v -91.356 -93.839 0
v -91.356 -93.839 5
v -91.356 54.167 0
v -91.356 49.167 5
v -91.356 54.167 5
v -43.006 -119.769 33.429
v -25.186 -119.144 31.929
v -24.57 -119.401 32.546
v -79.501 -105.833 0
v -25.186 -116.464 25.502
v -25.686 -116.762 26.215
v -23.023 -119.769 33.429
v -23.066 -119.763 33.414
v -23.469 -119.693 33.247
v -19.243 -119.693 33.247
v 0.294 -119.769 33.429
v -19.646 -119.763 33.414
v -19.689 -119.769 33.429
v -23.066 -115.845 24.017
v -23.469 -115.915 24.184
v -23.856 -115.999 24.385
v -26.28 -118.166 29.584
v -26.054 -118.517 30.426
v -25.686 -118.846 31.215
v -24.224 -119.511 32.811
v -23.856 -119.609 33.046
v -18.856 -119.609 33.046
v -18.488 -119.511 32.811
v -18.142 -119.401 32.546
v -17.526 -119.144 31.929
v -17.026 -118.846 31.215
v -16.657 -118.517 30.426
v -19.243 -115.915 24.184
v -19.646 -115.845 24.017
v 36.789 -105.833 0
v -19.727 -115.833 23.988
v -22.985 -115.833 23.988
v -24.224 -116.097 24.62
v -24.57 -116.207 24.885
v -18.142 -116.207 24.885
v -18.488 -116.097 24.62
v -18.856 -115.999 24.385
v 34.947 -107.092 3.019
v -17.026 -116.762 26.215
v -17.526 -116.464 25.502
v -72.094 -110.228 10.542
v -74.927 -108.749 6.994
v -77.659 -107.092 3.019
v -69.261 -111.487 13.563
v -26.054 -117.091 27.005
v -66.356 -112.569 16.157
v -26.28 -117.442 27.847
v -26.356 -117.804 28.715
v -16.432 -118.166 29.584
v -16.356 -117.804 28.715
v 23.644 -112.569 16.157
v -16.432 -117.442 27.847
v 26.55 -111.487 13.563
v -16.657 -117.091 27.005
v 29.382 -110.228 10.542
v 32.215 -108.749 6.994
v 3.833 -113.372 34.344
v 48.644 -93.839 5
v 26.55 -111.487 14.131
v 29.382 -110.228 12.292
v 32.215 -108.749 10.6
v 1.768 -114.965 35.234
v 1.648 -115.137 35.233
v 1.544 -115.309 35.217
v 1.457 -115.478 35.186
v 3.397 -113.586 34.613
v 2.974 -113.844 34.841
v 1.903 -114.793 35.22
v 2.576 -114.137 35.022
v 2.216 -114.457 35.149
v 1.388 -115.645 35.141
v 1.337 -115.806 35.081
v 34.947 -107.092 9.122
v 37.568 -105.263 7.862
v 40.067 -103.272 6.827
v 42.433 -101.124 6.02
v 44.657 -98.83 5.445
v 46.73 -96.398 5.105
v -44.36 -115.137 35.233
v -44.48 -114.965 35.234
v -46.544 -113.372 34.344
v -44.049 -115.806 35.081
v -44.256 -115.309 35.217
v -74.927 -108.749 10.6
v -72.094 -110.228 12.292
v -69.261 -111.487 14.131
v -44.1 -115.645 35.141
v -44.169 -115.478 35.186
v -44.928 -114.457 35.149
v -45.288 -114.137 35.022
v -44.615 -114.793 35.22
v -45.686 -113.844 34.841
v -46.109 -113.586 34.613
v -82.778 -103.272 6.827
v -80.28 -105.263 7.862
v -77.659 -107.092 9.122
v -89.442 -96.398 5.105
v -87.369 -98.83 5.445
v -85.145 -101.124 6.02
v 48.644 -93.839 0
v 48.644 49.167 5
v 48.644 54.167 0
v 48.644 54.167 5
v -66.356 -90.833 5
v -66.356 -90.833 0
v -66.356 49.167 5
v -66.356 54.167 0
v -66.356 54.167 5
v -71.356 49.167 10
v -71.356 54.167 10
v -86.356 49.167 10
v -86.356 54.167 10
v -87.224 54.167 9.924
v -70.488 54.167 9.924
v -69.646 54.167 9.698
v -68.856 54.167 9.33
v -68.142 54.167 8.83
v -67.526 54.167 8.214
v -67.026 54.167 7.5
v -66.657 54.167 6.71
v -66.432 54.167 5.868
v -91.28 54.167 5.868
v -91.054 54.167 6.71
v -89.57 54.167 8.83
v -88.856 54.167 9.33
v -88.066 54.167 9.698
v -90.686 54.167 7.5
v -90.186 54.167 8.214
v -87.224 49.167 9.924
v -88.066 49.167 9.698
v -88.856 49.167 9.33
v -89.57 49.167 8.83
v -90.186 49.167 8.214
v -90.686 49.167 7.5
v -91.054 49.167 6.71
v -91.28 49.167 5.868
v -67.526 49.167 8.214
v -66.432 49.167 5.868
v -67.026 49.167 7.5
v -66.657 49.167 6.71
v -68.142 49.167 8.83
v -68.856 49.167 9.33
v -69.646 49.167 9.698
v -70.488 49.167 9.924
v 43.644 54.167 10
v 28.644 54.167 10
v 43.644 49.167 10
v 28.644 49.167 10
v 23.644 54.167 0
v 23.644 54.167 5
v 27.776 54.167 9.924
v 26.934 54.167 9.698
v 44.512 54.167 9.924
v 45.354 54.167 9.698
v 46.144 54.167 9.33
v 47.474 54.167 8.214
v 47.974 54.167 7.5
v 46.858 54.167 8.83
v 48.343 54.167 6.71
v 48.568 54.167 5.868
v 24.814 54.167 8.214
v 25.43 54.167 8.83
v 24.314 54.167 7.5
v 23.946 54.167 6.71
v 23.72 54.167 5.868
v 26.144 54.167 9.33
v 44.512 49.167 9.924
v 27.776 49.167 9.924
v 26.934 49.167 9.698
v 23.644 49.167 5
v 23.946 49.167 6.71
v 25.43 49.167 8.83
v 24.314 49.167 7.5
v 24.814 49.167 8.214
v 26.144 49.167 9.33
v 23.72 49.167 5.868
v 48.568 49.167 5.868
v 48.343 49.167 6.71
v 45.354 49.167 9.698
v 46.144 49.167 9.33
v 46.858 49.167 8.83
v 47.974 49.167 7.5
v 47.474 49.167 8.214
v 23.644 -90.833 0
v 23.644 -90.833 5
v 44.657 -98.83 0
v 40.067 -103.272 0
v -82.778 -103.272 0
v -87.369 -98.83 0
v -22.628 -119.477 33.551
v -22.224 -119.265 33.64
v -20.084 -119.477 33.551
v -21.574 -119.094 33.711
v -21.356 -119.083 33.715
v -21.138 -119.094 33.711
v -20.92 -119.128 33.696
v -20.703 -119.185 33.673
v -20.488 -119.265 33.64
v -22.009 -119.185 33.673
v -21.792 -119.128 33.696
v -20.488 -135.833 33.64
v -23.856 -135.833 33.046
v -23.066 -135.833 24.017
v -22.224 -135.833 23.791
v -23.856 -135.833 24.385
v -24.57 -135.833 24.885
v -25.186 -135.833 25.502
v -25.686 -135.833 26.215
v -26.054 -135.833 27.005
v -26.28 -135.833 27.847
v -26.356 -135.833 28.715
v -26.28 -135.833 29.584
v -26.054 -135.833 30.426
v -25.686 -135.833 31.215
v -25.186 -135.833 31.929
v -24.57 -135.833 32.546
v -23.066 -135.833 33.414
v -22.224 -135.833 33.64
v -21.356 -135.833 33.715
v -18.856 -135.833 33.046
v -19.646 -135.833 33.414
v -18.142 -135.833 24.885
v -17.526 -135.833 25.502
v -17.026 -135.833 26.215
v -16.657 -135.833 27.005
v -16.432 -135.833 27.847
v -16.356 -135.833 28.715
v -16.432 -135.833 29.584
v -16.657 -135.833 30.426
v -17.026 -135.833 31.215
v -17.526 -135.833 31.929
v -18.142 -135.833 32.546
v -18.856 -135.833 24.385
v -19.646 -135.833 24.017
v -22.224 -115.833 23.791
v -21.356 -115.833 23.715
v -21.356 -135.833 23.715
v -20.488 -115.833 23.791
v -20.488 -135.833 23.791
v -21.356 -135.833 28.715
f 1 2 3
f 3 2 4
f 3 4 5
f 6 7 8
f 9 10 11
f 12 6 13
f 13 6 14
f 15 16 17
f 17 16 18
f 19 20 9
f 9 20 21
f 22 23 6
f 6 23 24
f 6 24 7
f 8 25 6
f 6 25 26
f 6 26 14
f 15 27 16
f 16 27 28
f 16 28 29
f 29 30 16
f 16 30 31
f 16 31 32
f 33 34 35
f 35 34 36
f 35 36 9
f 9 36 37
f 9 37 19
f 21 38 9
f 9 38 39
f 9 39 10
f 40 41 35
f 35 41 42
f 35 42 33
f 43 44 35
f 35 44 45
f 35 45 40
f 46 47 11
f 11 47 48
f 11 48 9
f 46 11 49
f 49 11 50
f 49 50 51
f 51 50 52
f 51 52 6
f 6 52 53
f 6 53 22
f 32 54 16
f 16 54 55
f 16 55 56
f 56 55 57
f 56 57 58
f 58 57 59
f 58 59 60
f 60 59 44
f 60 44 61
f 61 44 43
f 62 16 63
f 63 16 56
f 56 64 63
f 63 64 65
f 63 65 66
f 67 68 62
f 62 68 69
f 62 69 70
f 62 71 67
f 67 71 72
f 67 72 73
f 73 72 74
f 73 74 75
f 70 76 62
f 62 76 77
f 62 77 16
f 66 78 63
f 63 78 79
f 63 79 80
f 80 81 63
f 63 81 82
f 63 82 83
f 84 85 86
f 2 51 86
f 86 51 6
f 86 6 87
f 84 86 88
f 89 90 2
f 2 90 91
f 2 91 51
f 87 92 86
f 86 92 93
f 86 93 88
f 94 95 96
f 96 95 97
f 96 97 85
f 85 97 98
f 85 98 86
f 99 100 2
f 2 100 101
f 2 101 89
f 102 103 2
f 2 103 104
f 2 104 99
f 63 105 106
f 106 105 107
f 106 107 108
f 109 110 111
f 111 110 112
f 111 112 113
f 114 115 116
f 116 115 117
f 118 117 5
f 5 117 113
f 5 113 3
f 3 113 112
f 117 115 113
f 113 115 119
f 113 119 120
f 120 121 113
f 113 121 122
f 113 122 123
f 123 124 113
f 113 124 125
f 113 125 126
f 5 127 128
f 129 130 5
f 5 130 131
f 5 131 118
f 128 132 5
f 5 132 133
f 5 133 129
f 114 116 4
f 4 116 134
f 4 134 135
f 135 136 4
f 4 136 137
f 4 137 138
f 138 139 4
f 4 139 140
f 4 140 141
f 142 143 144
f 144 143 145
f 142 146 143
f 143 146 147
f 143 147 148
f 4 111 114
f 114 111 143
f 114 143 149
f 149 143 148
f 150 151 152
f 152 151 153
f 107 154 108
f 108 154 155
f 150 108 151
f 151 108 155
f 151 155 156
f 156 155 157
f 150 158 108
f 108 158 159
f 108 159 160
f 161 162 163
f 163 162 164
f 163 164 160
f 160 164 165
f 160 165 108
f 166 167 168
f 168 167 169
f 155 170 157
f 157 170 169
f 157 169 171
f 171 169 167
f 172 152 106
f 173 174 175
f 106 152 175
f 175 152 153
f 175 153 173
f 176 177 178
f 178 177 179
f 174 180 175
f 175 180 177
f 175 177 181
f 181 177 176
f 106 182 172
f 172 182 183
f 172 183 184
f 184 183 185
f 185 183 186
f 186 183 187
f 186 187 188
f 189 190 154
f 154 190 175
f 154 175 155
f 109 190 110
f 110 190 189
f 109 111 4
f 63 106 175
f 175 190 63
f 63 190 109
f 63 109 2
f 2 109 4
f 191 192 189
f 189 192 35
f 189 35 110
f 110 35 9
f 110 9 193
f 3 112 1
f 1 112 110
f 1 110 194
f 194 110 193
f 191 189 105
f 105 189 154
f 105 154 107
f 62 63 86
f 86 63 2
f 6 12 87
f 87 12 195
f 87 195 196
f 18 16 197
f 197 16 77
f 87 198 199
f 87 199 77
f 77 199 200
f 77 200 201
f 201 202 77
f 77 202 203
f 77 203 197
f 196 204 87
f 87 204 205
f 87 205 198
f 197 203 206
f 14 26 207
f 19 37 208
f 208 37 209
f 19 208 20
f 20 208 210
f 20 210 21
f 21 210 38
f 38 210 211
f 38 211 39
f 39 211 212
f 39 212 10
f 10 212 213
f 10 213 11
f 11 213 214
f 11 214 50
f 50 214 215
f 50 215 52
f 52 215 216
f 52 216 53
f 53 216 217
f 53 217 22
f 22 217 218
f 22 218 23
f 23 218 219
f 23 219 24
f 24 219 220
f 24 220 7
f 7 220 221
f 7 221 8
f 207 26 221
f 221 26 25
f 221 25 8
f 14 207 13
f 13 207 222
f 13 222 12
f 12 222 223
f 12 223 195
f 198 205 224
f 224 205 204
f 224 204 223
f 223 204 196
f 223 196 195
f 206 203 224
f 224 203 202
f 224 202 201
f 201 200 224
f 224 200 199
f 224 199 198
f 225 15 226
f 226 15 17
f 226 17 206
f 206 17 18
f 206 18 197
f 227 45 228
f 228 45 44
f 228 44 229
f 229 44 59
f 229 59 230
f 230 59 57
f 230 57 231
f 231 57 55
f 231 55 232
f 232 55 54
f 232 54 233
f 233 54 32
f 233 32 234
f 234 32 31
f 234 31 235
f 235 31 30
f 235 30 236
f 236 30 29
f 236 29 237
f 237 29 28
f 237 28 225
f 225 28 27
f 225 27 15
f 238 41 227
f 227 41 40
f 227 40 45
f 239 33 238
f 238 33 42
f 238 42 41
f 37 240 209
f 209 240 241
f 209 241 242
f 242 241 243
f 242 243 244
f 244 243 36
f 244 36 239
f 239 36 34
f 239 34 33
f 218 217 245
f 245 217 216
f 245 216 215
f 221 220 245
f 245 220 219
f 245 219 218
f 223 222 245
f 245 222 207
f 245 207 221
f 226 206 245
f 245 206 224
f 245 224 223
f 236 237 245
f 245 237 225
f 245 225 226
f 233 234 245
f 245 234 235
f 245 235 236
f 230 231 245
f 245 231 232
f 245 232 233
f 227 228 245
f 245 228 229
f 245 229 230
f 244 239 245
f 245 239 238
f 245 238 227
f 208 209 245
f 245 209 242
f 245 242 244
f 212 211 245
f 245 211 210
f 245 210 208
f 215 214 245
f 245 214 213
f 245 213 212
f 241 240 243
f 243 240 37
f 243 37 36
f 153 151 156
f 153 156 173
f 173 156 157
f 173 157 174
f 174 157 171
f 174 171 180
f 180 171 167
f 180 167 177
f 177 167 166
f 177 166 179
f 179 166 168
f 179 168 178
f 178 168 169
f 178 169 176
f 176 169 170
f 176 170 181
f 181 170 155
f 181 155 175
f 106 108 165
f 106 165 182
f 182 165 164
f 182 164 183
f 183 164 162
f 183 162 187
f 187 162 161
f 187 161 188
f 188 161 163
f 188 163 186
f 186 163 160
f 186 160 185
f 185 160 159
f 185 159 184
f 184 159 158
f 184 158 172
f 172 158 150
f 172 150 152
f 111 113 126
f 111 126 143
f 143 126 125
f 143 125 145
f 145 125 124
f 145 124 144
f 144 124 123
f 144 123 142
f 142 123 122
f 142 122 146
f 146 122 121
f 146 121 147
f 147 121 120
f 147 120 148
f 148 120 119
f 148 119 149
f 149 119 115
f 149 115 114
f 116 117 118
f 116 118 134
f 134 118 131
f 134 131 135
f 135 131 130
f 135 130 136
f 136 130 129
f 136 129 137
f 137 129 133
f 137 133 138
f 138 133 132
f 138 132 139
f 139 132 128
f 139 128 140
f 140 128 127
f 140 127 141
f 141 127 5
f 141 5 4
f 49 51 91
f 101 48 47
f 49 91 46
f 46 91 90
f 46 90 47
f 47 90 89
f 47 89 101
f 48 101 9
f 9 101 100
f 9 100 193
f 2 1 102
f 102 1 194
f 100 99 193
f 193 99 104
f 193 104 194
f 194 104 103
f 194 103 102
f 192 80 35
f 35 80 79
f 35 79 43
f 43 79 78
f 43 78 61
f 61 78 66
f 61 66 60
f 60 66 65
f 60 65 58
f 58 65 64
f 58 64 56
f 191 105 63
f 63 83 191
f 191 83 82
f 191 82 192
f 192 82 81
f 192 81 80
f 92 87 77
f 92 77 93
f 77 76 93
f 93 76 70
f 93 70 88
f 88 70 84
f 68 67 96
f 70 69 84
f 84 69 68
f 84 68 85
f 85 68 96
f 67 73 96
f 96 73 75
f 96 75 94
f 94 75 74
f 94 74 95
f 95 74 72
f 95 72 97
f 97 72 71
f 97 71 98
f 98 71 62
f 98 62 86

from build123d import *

# Parameters (mm, degrees)
AUFSATZ_LINEAR_AUSTRAGEN1_DEPTH      = 5
SKIZZE2_W                            = 25
SKIZZE2_H                            = 10
AUFSATZ_LINEAR_AUSTRAGEN2_DEPTH      = 5
AUFSATZ_LINEAR_AUSTRAGEN3_DEPTH      = 140
SCHNITT_LINEAR_AUSTRAGEN1_DEPTH      = 20
SKIZZE6_R                            = 5
AUFSATZ_LINEAR_AUSTRAGEN4_DEPTH      = 20
SCHNITT_LINEAR_AUSTRAGEN2_DEPTH      = 5
SCHNITT_LINEAR_AUSTRAGEN3_DEPTH      = 20
SCHNITT_LINEAR_AUSTRAGEN3_DEPTH_BACK = 5
VERRUNDUNG2_R                        = 2


with BuildPart() as part:
    # Skizze1 → Aufsatz-Linear austragen1 (new body)
    with BuildSketch(Plane.XY):
        Polygon((-91.355950116, 49.166666667), (-66.355950116, 49.166666667), (-66.355950116, -90.833333333), (23.644049884, -90.833333333), (23.644049884, 49.166666667), (48.644049884, 49.166666667), (48.644049884, -90.833333333), (48.644049884, -105.833333333), (-91.355950116, -105.833333333), (-91.355950116, -90.833333333), align=None)
    extrude(amount=AUFSATZ_LINEAR_AUSTRAGEN1_DEPTH)

    # Skizze2 → Aufsatz-Linear austragen2 (add)
    with BuildSketch(Plane(origin=(0, 49.166666667, 0), x_dir=(1, 0, 0), z_dir=(0, 1, 0))):
        with Locations((-78.855950116, -5)):
            Rectangle(SKIZZE2_W, SKIZZE2_H)
        with Locations((36.144049884, -5)):
            Rectangle(SKIZZE2_W, SKIZZE2_H)
    extrude(amount=AUFSATZ_LINEAR_AUSTRAGEN2_DEPTH)

    # Skizze4 → Aufsatz-Linear austragen3 (add)
    with BuildSketch(Plane.ZY.offset(91.355950116)):
        Polygon((0, -105.833333333), (33.429341034, -119.769048128), (35.715469601, -114.285025769), (5, -93.839208336), align=None)
    extrude(amount=-AUFSATZ_LINEAR_AUSTRAGEN3_DEPTH)

    # Skizze5 → Schnitt-Linear austragen1 (cut)
    with BuildSketch(Plane(origin=(0, -62.72011839, -41.749779724), x_dir=(1, 0, 0), z_dir=(0, 0.8324398810994642, 0.5541153709789236))):
        Polygon((-91.355950116, -56.159947145), (-41.355950116, -95.491404119), (-91.355950116, -95.491404119), align=None)
        Polygon((48.644049884, -56.159947145), (-1.355950116, -95.491404119), (48.644049884, -95.491404119), align=None)
    extrude(amount=-SCHNITT_LINEAR_AUSTRAGEN1_DEPTH, mode=Mode.SUBTRACT)

    # Skizze6 → Aufsatz-Linear austragen4 (add)
    with BuildSketch(Plane(origin=(0, -115.833333333, 0), x_dir=(1, 0, 0), z_dir=(0, 1, 0))):
        with Locations(Location((-21.355950116, -28.715469601, 0), (0, 0, 180))):
            Circle(SKIZZE6_R)
    extrude(amount=-AUFSATZ_LINEAR_AUSTRAGEN4_DEPTH)

    # Skizze7 → Schnitt-Linear austragen2 (cut)
    with BuildSketch(Plane(origin=(0, 54.166666667, 0), x_dir=(1, 0, 0), z_dir=(0, 1, 0))):
        with BuildLine():
            Line((-91.355950116, -5), (-91.355950116, -10))
            Line((-91.355950116, -10), (-86.355950638, -10))
            ThreePointArc((-86.355950638, -10), (-89.891484175, -8.535533537), (-91.355950116, -5))
        make_face()
        with BuildLine():
            Line((-71.355949595, -10), (-66.355950116, -10))
            Line((-66.355950116, -10), (-66.355950116, -5))
            ThreePointArc((-66.355950116, -5), (-67.820416058, -8.535533537), (-71.355949595, -10))
        make_face()
        with BuildLine():
            Line((23.644049884, -5), (23.644049884, -10))
            Line((23.644049884, -10), (28.644049362, -10))
            ThreePointArc((28.644049362, -10), (25.108515825, -8.535533537), (23.644049884, -5))
        make_face()
        with BuildLine():
            Line((48.644049884, -5), (48.644049884, -10))
            Line((48.644049884, -10), (43.644050405, -10))
            ThreePointArc((43.644050405, -10), (47.179583942, -8.535533537), (48.644049884, -5))
        make_face()
    extrude(amount=-SCHNITT_LINEAR_AUSTRAGEN2_DEPTH, mode=Mode.SUBTRACT)

    # Skizze8 → Schnitt-Linear austragen3 (cut, two sides: drawn at the far end of the back side and taken through both)
    with BuildSketch(Plane.XY.offset(5).offset(-SCHNITT_LINEAR_AUSTRAGEN3_DEPTH_BACK)):
        with BuildLine():
            Line((-91.355950116, -93.839208336), (-91.355950116, -112.568670939))
            Line((-91.355950116, -112.568670939), (-66.355950116, -112.568670939))
            ThreePointArc((-66.355950116, -112.568670939), (-80.35614887, -105.206397991), (-91.355950116, -93.839208336))
        make_face()
        with BuildLine():
            Line((48.644049884, -112.568670939), (23.644049884, -112.568670939))
            ThreePointArc((23.644049884, -112.568670939), (37.644248637, -105.206397991), (48.644049884, -93.839208336))
            Line((48.644049884, -93.839208336), (48.644049884, -112.568670939))
        make_face()
    extrude(amount=SCHNITT_LINEAR_AUSTRAGEN3_DEPTH + SCHNITT_LINEAR_AUSTRAGEN3_DEPTH_BACK, mode=Mode.SUBTRACT)

    # Verrundung2
    verrundung2_edges = [part.edges().sort_by_distance(p)[0] for p in [
        (-21.355950116, -114.285025769, 35.715469601),
    ]]
    fillet(verrundung2_edges, radius=VERRUNDUNG2_R)


solid = part.part
